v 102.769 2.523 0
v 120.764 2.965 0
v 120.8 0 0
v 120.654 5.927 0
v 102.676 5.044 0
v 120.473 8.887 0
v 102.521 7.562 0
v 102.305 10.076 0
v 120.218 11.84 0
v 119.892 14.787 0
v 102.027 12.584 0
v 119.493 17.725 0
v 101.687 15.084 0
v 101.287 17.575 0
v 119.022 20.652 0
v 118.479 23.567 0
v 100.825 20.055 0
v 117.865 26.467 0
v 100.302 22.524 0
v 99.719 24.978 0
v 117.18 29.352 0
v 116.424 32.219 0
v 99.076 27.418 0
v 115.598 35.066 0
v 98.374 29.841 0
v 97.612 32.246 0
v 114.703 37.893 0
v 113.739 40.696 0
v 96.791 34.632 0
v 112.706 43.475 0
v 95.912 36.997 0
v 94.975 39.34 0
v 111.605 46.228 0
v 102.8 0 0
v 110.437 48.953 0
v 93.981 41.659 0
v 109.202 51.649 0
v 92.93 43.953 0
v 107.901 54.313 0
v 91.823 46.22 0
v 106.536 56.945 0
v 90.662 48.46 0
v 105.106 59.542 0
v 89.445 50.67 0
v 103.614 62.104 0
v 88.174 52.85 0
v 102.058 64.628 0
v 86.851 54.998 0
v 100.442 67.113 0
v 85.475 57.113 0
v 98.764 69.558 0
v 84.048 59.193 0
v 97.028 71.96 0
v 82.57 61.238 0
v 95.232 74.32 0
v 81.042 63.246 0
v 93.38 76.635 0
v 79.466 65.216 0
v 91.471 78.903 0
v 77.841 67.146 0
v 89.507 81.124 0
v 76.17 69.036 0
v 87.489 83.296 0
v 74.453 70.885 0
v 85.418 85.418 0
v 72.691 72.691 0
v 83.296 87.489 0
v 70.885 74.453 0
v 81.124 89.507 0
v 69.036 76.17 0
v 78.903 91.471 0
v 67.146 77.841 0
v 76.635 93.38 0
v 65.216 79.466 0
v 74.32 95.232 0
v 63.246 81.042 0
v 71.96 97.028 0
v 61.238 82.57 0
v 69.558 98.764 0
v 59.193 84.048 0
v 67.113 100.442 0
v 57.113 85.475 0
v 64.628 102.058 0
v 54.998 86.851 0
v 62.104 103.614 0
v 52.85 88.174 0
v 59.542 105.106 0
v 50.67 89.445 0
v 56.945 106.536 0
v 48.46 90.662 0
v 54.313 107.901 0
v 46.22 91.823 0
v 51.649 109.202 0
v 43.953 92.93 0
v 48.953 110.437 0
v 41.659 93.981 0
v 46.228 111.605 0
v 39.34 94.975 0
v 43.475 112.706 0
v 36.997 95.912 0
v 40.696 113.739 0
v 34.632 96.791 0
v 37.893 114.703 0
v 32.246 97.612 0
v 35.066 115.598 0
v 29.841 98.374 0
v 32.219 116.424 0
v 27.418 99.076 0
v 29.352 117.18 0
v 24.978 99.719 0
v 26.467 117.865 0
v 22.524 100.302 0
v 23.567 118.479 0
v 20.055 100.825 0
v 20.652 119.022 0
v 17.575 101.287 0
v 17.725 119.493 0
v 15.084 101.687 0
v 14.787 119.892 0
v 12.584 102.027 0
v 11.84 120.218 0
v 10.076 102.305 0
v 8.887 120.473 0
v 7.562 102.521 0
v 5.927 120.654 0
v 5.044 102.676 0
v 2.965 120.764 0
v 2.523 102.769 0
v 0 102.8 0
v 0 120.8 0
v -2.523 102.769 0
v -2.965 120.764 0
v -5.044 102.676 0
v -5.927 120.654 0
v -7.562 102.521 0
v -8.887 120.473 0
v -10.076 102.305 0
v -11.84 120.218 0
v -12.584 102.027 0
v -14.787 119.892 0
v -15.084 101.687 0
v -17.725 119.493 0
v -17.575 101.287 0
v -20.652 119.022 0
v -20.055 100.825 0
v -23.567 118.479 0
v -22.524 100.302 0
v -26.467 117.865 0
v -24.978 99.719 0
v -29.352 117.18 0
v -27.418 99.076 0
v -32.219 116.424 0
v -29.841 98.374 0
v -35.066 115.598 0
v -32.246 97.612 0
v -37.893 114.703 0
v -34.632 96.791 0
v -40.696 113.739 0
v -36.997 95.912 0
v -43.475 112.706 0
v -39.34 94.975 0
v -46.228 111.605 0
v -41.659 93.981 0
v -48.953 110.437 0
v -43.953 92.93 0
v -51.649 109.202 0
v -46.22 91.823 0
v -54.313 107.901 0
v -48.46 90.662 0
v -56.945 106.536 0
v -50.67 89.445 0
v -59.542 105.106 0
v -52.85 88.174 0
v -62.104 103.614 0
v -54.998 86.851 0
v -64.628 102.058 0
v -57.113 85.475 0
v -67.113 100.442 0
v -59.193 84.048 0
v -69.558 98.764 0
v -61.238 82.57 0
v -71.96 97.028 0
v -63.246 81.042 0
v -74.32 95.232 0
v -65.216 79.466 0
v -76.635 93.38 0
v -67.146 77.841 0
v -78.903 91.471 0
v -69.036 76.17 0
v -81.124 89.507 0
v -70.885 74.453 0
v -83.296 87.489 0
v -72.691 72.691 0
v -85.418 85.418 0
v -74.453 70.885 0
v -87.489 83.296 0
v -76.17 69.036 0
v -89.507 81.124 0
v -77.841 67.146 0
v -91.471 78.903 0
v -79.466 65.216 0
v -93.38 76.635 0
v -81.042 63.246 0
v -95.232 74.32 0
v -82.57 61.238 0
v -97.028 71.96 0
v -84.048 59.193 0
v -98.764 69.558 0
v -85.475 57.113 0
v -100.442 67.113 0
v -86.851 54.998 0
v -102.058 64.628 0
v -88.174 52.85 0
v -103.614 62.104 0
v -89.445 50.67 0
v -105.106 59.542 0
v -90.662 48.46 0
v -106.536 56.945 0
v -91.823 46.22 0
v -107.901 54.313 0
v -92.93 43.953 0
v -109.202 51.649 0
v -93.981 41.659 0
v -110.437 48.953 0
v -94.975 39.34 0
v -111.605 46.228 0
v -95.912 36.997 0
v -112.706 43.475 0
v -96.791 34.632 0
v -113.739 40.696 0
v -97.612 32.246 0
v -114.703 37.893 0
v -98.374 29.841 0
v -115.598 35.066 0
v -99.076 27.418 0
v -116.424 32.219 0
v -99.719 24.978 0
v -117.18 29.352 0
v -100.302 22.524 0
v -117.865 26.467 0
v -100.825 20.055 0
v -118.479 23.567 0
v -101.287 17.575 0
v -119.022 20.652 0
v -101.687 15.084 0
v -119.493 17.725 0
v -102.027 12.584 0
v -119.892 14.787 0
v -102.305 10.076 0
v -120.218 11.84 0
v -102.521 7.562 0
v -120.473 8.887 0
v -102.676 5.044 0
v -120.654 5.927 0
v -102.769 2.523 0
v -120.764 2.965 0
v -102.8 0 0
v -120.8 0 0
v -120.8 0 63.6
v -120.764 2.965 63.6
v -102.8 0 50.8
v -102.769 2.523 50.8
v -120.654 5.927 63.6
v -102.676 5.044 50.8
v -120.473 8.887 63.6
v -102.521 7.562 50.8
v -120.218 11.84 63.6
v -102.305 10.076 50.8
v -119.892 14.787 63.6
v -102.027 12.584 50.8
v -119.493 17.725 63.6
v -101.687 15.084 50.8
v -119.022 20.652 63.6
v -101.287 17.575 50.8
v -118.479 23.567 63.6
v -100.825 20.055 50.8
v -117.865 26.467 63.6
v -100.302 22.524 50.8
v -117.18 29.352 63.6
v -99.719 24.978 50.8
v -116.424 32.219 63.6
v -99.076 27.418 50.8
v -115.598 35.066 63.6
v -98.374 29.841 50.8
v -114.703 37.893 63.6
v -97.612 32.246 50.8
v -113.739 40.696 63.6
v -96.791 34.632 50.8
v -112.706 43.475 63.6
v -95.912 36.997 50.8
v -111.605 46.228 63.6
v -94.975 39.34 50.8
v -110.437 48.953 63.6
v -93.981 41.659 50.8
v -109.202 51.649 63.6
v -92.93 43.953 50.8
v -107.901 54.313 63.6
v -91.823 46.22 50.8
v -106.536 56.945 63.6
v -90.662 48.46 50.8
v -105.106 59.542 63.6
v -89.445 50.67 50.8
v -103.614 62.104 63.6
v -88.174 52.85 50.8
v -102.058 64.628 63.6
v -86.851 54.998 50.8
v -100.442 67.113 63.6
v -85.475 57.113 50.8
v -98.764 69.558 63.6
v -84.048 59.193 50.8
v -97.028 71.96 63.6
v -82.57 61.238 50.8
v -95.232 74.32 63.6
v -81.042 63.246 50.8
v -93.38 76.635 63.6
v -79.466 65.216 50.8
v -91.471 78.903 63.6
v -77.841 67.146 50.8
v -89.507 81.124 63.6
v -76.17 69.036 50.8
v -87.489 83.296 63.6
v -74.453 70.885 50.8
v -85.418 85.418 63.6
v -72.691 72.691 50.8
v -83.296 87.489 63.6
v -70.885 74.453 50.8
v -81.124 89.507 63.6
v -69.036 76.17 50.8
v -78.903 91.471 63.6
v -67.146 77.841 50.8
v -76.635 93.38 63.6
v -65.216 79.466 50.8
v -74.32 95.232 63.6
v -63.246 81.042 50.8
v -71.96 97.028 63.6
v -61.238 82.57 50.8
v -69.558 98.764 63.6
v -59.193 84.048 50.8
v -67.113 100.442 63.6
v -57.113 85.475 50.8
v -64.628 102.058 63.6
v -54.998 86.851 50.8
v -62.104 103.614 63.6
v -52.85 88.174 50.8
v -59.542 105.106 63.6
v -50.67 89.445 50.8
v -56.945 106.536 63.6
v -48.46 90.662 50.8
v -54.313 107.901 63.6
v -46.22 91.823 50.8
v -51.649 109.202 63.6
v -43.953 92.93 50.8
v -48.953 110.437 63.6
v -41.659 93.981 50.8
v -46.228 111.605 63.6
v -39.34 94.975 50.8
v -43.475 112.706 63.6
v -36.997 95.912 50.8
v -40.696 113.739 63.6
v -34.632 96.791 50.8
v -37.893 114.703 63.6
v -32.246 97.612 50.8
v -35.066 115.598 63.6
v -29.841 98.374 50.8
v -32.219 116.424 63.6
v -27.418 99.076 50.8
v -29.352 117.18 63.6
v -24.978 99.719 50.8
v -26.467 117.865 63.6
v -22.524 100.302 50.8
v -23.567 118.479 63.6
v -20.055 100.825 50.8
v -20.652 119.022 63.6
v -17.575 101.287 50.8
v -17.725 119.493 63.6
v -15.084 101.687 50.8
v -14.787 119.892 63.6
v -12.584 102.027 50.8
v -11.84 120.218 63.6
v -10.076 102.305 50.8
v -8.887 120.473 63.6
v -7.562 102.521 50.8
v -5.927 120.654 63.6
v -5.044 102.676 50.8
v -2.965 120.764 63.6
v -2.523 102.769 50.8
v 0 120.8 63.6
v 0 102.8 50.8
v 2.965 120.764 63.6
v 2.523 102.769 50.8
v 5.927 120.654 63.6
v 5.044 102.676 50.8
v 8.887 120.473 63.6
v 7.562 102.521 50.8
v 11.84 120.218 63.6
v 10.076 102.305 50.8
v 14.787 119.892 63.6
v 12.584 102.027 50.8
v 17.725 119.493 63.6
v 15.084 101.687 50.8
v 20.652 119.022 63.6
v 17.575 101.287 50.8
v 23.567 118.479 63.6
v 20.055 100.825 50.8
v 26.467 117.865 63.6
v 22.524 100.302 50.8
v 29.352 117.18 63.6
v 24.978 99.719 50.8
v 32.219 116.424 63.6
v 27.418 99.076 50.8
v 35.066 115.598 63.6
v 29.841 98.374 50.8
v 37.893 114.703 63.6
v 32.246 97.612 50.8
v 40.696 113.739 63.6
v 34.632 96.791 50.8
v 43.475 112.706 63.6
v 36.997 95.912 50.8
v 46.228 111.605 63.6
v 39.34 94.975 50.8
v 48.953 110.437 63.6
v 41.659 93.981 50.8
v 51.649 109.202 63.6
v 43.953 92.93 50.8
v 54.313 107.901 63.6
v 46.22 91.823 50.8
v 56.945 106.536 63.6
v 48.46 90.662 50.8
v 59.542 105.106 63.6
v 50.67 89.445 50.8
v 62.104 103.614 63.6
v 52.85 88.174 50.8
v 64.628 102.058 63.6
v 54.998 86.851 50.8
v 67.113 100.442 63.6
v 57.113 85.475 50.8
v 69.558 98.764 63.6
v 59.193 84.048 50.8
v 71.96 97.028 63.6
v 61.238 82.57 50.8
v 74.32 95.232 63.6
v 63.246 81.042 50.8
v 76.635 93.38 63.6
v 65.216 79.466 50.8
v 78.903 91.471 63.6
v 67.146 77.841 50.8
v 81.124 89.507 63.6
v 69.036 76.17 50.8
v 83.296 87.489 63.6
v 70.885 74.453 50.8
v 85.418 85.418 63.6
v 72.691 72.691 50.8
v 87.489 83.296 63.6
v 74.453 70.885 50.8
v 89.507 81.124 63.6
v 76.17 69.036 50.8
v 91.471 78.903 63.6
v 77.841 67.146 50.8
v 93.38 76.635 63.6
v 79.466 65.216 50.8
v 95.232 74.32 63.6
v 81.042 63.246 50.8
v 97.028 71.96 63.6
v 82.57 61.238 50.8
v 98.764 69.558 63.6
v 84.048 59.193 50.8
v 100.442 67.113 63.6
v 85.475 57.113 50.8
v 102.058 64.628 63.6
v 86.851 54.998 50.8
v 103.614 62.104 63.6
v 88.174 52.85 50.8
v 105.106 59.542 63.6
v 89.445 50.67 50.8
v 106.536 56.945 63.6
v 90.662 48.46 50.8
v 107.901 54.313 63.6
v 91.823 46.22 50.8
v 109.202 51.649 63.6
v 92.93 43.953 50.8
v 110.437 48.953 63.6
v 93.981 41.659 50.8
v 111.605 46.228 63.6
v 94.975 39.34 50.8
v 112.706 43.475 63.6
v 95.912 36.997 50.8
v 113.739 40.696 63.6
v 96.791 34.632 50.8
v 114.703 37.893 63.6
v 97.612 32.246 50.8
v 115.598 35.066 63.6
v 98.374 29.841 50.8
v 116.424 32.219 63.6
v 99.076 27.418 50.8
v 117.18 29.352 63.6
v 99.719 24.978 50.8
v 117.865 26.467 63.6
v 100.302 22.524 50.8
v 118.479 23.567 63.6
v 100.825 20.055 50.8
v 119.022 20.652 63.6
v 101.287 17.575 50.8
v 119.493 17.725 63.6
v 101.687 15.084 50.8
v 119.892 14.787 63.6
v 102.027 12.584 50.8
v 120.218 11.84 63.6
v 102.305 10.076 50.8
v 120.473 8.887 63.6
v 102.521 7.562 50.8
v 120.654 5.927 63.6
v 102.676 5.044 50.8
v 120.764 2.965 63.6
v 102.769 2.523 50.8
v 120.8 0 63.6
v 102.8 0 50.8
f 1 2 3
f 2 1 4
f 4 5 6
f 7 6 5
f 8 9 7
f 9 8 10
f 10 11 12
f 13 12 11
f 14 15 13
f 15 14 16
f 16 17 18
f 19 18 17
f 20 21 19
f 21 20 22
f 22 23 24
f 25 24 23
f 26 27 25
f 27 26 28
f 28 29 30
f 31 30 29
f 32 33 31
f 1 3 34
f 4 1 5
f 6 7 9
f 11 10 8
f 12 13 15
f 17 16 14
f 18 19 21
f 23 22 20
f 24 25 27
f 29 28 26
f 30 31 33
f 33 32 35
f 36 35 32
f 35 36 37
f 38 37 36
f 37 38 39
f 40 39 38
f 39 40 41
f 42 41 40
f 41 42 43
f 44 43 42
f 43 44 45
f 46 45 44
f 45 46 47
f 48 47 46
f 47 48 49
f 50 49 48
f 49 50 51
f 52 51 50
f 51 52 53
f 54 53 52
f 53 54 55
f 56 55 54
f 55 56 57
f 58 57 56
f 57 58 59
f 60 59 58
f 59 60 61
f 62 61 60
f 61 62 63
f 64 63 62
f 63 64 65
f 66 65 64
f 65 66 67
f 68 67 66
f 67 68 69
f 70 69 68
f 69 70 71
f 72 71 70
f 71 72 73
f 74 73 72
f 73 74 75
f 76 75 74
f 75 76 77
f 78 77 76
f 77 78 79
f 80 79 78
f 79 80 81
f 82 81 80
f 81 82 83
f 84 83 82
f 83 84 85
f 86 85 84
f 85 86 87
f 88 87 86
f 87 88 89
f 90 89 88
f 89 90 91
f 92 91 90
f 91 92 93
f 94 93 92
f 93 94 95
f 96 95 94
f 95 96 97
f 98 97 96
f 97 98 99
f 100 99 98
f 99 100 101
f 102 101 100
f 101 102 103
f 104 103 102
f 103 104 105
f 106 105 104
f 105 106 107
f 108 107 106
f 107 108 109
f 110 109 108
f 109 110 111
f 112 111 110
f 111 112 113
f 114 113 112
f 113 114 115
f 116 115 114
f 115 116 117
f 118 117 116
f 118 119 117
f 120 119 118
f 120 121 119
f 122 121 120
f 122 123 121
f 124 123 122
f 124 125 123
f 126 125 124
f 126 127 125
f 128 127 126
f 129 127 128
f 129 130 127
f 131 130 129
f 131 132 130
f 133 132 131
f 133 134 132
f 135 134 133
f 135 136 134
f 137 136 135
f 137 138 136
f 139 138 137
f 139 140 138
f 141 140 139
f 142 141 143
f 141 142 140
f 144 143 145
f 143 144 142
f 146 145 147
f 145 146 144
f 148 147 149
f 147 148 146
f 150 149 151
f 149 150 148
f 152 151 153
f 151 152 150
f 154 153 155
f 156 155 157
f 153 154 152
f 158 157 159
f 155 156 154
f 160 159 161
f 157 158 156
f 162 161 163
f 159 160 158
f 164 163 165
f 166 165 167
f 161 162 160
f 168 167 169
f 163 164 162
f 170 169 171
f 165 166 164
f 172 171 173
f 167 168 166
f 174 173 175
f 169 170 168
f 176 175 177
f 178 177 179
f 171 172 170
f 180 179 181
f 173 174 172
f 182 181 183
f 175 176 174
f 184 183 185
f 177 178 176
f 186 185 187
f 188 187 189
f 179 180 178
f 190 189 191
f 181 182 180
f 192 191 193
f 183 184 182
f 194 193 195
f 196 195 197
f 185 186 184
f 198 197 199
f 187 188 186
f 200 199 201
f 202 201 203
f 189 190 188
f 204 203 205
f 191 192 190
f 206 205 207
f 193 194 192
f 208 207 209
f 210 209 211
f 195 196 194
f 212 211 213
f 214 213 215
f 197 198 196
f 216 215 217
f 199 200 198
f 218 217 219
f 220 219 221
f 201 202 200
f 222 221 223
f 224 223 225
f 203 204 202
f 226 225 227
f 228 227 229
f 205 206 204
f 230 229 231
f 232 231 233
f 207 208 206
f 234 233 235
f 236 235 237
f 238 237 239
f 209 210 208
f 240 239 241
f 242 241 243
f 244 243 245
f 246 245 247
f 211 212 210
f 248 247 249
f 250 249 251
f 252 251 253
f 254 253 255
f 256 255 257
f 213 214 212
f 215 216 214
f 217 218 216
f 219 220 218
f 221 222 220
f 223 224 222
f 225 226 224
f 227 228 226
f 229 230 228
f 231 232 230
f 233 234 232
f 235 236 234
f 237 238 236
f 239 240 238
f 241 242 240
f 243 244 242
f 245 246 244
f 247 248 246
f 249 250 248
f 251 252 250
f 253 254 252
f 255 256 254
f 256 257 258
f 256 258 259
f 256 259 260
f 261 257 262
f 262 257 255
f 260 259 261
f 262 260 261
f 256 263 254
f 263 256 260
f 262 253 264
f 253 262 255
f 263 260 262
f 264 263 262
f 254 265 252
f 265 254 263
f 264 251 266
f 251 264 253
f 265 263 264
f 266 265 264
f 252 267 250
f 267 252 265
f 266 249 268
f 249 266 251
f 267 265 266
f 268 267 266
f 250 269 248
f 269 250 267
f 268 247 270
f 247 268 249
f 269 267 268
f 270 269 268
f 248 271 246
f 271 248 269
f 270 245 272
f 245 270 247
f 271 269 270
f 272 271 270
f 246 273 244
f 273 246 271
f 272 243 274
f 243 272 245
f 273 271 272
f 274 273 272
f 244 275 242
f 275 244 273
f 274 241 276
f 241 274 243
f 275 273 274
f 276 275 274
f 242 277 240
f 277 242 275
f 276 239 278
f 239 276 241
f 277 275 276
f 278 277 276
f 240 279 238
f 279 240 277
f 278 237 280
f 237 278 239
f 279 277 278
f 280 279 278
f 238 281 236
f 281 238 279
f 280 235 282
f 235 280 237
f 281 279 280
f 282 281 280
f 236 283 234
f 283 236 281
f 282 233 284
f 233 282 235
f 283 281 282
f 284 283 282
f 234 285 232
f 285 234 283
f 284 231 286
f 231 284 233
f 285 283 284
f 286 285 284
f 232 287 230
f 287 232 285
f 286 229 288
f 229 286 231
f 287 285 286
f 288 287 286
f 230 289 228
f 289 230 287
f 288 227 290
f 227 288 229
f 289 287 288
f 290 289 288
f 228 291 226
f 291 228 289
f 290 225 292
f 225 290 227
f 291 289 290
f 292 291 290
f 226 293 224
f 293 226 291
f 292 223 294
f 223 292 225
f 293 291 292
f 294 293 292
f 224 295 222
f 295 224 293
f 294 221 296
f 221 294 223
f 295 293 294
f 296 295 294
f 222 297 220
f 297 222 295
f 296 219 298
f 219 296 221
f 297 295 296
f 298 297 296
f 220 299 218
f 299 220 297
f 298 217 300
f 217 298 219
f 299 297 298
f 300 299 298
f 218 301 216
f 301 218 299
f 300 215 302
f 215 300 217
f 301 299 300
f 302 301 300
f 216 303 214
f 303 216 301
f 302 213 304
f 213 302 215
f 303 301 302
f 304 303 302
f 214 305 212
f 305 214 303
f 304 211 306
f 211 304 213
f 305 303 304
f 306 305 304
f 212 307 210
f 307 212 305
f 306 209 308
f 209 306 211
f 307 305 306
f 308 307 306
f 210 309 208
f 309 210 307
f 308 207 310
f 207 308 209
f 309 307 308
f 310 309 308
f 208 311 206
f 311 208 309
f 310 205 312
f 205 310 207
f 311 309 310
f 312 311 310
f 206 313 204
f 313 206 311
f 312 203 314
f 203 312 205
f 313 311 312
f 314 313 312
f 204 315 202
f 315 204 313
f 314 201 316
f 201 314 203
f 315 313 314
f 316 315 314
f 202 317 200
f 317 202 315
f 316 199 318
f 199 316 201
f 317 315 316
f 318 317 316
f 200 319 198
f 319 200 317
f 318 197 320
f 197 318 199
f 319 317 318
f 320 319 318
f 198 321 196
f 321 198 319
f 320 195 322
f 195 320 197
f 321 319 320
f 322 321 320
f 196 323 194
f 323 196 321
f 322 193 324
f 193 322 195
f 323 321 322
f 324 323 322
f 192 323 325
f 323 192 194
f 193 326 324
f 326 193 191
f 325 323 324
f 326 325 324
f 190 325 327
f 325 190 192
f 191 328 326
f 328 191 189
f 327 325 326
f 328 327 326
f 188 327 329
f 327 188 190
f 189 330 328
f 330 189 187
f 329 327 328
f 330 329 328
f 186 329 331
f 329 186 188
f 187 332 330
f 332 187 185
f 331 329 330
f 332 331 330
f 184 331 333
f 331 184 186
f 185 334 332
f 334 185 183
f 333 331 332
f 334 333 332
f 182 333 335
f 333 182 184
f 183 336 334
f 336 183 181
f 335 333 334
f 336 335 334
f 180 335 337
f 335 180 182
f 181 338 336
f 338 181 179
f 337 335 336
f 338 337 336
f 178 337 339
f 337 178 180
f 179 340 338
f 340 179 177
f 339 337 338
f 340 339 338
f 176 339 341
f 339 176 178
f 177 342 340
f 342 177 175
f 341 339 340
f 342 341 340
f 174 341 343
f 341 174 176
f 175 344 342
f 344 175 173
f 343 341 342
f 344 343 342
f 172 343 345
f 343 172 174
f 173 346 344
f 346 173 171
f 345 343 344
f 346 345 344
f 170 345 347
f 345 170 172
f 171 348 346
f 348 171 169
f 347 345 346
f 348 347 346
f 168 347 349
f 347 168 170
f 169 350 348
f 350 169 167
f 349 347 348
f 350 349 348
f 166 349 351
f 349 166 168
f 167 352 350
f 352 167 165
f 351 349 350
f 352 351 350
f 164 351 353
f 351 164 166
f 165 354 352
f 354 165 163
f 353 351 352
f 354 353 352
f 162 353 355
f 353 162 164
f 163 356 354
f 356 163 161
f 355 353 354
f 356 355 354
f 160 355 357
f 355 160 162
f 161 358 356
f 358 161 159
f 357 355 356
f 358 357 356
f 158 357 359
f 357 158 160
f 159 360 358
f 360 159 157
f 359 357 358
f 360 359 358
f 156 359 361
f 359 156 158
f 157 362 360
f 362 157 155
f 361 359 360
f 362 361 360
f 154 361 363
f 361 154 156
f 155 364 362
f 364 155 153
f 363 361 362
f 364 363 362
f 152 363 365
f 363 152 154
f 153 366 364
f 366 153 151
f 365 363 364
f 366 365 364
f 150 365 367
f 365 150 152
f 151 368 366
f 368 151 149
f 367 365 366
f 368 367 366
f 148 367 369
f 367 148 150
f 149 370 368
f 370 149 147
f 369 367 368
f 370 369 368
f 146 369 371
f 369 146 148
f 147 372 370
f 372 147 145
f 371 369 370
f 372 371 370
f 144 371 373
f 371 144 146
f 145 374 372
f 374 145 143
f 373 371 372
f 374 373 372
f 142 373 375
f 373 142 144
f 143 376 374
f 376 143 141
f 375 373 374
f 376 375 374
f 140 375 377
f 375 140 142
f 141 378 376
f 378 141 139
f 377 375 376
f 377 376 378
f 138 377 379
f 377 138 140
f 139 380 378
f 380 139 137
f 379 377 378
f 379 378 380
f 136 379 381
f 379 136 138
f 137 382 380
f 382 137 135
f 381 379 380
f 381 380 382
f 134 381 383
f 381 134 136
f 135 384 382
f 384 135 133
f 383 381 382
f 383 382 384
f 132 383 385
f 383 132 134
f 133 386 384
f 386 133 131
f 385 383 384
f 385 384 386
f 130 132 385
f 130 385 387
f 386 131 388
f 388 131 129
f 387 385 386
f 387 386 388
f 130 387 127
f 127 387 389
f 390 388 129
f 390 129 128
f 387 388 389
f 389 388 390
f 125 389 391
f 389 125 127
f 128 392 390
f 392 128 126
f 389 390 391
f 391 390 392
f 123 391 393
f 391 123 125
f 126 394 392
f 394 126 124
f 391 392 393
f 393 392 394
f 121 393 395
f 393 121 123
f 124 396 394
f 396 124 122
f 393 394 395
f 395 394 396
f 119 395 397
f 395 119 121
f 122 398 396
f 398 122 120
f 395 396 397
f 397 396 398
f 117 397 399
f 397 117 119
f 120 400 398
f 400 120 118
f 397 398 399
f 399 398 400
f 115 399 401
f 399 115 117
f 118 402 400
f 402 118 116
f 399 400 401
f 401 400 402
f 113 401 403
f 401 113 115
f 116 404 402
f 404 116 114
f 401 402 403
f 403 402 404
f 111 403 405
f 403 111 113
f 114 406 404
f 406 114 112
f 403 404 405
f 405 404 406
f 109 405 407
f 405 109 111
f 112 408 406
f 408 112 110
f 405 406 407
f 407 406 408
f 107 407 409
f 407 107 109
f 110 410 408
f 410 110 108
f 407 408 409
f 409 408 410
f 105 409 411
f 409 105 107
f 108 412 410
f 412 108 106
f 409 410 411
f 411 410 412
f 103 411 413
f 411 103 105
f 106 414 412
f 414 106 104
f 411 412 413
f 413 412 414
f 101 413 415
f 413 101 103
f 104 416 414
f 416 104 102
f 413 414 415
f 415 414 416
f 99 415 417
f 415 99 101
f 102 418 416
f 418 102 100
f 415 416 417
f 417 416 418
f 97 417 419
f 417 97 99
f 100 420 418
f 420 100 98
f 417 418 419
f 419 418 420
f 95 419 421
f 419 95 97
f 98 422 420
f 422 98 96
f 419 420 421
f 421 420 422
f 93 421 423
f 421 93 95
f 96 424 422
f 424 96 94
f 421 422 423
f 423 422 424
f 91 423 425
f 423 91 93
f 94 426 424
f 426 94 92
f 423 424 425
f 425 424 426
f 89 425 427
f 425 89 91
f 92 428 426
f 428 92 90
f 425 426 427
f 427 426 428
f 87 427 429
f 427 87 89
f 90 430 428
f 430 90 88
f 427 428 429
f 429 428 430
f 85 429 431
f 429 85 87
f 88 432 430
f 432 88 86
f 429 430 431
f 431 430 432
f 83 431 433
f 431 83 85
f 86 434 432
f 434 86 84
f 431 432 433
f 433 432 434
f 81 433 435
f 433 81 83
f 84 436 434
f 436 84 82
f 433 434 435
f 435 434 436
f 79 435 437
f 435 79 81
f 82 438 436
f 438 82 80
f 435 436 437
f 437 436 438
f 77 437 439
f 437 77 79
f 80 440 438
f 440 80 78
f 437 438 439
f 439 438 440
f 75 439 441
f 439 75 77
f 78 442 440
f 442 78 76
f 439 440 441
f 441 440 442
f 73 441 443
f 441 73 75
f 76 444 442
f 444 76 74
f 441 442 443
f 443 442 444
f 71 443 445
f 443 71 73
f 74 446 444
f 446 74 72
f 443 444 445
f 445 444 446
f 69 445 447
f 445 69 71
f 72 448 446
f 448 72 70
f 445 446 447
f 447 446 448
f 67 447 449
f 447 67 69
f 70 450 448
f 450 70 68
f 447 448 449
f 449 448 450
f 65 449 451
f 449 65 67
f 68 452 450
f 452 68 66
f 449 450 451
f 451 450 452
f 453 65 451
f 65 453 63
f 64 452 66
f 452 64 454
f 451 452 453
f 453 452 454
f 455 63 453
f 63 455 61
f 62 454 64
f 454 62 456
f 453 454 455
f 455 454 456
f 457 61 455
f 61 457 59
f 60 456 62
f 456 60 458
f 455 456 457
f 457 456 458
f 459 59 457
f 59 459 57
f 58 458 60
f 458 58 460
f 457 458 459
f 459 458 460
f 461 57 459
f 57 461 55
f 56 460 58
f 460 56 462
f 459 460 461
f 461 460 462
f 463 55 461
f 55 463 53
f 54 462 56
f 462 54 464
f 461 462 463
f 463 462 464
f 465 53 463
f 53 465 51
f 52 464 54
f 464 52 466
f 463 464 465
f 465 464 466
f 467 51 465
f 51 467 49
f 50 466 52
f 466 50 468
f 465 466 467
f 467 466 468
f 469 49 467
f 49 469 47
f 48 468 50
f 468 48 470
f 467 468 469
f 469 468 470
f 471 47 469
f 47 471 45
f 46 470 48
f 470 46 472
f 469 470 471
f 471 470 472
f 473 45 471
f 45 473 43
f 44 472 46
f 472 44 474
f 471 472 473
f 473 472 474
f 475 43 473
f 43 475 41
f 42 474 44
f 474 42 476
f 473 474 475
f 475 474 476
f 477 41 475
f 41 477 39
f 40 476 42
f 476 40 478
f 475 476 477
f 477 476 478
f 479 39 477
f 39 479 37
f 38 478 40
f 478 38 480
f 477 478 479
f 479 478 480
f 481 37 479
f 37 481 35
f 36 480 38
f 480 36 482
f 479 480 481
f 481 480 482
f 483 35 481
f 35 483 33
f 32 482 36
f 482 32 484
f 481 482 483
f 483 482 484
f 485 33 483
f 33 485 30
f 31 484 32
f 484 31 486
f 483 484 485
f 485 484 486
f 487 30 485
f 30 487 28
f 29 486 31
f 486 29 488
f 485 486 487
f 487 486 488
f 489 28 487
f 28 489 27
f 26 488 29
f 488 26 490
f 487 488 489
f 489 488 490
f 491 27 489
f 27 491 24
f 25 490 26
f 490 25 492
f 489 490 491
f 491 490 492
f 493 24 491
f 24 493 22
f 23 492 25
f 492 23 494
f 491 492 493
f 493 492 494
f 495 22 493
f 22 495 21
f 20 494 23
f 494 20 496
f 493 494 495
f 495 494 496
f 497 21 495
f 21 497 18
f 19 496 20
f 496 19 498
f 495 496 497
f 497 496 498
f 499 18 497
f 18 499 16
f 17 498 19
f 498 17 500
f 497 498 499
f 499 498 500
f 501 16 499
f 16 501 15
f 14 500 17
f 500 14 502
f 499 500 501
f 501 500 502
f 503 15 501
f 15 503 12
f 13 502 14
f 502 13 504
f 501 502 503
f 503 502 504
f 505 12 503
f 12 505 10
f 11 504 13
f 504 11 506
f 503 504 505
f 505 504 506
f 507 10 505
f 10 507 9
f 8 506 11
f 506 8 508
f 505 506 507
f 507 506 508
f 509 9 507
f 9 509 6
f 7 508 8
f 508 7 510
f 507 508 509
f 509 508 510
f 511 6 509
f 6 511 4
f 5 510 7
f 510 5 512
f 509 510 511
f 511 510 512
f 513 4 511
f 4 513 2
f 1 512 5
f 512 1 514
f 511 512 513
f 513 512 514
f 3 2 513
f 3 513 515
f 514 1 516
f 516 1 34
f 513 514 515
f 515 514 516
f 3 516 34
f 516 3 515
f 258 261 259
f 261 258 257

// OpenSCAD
$fn=8;

intersection() {
	rotate_extrude($fn = 256) {
		rotate(a = [0, 0, 90]) {
			polygon(paths = [[0, 1, 2, 3]], points = [[0, 102.8000000000], [50.8000000000, 102.8000000000], [63.6000000000, 120.8000000000], [0, 120.8000000000]]);
		}
	}
	translate(v = [0, 500.0000000000, 0]) {
		cube(center = true, size = [1000, 1000, 1000]);
	}
}
